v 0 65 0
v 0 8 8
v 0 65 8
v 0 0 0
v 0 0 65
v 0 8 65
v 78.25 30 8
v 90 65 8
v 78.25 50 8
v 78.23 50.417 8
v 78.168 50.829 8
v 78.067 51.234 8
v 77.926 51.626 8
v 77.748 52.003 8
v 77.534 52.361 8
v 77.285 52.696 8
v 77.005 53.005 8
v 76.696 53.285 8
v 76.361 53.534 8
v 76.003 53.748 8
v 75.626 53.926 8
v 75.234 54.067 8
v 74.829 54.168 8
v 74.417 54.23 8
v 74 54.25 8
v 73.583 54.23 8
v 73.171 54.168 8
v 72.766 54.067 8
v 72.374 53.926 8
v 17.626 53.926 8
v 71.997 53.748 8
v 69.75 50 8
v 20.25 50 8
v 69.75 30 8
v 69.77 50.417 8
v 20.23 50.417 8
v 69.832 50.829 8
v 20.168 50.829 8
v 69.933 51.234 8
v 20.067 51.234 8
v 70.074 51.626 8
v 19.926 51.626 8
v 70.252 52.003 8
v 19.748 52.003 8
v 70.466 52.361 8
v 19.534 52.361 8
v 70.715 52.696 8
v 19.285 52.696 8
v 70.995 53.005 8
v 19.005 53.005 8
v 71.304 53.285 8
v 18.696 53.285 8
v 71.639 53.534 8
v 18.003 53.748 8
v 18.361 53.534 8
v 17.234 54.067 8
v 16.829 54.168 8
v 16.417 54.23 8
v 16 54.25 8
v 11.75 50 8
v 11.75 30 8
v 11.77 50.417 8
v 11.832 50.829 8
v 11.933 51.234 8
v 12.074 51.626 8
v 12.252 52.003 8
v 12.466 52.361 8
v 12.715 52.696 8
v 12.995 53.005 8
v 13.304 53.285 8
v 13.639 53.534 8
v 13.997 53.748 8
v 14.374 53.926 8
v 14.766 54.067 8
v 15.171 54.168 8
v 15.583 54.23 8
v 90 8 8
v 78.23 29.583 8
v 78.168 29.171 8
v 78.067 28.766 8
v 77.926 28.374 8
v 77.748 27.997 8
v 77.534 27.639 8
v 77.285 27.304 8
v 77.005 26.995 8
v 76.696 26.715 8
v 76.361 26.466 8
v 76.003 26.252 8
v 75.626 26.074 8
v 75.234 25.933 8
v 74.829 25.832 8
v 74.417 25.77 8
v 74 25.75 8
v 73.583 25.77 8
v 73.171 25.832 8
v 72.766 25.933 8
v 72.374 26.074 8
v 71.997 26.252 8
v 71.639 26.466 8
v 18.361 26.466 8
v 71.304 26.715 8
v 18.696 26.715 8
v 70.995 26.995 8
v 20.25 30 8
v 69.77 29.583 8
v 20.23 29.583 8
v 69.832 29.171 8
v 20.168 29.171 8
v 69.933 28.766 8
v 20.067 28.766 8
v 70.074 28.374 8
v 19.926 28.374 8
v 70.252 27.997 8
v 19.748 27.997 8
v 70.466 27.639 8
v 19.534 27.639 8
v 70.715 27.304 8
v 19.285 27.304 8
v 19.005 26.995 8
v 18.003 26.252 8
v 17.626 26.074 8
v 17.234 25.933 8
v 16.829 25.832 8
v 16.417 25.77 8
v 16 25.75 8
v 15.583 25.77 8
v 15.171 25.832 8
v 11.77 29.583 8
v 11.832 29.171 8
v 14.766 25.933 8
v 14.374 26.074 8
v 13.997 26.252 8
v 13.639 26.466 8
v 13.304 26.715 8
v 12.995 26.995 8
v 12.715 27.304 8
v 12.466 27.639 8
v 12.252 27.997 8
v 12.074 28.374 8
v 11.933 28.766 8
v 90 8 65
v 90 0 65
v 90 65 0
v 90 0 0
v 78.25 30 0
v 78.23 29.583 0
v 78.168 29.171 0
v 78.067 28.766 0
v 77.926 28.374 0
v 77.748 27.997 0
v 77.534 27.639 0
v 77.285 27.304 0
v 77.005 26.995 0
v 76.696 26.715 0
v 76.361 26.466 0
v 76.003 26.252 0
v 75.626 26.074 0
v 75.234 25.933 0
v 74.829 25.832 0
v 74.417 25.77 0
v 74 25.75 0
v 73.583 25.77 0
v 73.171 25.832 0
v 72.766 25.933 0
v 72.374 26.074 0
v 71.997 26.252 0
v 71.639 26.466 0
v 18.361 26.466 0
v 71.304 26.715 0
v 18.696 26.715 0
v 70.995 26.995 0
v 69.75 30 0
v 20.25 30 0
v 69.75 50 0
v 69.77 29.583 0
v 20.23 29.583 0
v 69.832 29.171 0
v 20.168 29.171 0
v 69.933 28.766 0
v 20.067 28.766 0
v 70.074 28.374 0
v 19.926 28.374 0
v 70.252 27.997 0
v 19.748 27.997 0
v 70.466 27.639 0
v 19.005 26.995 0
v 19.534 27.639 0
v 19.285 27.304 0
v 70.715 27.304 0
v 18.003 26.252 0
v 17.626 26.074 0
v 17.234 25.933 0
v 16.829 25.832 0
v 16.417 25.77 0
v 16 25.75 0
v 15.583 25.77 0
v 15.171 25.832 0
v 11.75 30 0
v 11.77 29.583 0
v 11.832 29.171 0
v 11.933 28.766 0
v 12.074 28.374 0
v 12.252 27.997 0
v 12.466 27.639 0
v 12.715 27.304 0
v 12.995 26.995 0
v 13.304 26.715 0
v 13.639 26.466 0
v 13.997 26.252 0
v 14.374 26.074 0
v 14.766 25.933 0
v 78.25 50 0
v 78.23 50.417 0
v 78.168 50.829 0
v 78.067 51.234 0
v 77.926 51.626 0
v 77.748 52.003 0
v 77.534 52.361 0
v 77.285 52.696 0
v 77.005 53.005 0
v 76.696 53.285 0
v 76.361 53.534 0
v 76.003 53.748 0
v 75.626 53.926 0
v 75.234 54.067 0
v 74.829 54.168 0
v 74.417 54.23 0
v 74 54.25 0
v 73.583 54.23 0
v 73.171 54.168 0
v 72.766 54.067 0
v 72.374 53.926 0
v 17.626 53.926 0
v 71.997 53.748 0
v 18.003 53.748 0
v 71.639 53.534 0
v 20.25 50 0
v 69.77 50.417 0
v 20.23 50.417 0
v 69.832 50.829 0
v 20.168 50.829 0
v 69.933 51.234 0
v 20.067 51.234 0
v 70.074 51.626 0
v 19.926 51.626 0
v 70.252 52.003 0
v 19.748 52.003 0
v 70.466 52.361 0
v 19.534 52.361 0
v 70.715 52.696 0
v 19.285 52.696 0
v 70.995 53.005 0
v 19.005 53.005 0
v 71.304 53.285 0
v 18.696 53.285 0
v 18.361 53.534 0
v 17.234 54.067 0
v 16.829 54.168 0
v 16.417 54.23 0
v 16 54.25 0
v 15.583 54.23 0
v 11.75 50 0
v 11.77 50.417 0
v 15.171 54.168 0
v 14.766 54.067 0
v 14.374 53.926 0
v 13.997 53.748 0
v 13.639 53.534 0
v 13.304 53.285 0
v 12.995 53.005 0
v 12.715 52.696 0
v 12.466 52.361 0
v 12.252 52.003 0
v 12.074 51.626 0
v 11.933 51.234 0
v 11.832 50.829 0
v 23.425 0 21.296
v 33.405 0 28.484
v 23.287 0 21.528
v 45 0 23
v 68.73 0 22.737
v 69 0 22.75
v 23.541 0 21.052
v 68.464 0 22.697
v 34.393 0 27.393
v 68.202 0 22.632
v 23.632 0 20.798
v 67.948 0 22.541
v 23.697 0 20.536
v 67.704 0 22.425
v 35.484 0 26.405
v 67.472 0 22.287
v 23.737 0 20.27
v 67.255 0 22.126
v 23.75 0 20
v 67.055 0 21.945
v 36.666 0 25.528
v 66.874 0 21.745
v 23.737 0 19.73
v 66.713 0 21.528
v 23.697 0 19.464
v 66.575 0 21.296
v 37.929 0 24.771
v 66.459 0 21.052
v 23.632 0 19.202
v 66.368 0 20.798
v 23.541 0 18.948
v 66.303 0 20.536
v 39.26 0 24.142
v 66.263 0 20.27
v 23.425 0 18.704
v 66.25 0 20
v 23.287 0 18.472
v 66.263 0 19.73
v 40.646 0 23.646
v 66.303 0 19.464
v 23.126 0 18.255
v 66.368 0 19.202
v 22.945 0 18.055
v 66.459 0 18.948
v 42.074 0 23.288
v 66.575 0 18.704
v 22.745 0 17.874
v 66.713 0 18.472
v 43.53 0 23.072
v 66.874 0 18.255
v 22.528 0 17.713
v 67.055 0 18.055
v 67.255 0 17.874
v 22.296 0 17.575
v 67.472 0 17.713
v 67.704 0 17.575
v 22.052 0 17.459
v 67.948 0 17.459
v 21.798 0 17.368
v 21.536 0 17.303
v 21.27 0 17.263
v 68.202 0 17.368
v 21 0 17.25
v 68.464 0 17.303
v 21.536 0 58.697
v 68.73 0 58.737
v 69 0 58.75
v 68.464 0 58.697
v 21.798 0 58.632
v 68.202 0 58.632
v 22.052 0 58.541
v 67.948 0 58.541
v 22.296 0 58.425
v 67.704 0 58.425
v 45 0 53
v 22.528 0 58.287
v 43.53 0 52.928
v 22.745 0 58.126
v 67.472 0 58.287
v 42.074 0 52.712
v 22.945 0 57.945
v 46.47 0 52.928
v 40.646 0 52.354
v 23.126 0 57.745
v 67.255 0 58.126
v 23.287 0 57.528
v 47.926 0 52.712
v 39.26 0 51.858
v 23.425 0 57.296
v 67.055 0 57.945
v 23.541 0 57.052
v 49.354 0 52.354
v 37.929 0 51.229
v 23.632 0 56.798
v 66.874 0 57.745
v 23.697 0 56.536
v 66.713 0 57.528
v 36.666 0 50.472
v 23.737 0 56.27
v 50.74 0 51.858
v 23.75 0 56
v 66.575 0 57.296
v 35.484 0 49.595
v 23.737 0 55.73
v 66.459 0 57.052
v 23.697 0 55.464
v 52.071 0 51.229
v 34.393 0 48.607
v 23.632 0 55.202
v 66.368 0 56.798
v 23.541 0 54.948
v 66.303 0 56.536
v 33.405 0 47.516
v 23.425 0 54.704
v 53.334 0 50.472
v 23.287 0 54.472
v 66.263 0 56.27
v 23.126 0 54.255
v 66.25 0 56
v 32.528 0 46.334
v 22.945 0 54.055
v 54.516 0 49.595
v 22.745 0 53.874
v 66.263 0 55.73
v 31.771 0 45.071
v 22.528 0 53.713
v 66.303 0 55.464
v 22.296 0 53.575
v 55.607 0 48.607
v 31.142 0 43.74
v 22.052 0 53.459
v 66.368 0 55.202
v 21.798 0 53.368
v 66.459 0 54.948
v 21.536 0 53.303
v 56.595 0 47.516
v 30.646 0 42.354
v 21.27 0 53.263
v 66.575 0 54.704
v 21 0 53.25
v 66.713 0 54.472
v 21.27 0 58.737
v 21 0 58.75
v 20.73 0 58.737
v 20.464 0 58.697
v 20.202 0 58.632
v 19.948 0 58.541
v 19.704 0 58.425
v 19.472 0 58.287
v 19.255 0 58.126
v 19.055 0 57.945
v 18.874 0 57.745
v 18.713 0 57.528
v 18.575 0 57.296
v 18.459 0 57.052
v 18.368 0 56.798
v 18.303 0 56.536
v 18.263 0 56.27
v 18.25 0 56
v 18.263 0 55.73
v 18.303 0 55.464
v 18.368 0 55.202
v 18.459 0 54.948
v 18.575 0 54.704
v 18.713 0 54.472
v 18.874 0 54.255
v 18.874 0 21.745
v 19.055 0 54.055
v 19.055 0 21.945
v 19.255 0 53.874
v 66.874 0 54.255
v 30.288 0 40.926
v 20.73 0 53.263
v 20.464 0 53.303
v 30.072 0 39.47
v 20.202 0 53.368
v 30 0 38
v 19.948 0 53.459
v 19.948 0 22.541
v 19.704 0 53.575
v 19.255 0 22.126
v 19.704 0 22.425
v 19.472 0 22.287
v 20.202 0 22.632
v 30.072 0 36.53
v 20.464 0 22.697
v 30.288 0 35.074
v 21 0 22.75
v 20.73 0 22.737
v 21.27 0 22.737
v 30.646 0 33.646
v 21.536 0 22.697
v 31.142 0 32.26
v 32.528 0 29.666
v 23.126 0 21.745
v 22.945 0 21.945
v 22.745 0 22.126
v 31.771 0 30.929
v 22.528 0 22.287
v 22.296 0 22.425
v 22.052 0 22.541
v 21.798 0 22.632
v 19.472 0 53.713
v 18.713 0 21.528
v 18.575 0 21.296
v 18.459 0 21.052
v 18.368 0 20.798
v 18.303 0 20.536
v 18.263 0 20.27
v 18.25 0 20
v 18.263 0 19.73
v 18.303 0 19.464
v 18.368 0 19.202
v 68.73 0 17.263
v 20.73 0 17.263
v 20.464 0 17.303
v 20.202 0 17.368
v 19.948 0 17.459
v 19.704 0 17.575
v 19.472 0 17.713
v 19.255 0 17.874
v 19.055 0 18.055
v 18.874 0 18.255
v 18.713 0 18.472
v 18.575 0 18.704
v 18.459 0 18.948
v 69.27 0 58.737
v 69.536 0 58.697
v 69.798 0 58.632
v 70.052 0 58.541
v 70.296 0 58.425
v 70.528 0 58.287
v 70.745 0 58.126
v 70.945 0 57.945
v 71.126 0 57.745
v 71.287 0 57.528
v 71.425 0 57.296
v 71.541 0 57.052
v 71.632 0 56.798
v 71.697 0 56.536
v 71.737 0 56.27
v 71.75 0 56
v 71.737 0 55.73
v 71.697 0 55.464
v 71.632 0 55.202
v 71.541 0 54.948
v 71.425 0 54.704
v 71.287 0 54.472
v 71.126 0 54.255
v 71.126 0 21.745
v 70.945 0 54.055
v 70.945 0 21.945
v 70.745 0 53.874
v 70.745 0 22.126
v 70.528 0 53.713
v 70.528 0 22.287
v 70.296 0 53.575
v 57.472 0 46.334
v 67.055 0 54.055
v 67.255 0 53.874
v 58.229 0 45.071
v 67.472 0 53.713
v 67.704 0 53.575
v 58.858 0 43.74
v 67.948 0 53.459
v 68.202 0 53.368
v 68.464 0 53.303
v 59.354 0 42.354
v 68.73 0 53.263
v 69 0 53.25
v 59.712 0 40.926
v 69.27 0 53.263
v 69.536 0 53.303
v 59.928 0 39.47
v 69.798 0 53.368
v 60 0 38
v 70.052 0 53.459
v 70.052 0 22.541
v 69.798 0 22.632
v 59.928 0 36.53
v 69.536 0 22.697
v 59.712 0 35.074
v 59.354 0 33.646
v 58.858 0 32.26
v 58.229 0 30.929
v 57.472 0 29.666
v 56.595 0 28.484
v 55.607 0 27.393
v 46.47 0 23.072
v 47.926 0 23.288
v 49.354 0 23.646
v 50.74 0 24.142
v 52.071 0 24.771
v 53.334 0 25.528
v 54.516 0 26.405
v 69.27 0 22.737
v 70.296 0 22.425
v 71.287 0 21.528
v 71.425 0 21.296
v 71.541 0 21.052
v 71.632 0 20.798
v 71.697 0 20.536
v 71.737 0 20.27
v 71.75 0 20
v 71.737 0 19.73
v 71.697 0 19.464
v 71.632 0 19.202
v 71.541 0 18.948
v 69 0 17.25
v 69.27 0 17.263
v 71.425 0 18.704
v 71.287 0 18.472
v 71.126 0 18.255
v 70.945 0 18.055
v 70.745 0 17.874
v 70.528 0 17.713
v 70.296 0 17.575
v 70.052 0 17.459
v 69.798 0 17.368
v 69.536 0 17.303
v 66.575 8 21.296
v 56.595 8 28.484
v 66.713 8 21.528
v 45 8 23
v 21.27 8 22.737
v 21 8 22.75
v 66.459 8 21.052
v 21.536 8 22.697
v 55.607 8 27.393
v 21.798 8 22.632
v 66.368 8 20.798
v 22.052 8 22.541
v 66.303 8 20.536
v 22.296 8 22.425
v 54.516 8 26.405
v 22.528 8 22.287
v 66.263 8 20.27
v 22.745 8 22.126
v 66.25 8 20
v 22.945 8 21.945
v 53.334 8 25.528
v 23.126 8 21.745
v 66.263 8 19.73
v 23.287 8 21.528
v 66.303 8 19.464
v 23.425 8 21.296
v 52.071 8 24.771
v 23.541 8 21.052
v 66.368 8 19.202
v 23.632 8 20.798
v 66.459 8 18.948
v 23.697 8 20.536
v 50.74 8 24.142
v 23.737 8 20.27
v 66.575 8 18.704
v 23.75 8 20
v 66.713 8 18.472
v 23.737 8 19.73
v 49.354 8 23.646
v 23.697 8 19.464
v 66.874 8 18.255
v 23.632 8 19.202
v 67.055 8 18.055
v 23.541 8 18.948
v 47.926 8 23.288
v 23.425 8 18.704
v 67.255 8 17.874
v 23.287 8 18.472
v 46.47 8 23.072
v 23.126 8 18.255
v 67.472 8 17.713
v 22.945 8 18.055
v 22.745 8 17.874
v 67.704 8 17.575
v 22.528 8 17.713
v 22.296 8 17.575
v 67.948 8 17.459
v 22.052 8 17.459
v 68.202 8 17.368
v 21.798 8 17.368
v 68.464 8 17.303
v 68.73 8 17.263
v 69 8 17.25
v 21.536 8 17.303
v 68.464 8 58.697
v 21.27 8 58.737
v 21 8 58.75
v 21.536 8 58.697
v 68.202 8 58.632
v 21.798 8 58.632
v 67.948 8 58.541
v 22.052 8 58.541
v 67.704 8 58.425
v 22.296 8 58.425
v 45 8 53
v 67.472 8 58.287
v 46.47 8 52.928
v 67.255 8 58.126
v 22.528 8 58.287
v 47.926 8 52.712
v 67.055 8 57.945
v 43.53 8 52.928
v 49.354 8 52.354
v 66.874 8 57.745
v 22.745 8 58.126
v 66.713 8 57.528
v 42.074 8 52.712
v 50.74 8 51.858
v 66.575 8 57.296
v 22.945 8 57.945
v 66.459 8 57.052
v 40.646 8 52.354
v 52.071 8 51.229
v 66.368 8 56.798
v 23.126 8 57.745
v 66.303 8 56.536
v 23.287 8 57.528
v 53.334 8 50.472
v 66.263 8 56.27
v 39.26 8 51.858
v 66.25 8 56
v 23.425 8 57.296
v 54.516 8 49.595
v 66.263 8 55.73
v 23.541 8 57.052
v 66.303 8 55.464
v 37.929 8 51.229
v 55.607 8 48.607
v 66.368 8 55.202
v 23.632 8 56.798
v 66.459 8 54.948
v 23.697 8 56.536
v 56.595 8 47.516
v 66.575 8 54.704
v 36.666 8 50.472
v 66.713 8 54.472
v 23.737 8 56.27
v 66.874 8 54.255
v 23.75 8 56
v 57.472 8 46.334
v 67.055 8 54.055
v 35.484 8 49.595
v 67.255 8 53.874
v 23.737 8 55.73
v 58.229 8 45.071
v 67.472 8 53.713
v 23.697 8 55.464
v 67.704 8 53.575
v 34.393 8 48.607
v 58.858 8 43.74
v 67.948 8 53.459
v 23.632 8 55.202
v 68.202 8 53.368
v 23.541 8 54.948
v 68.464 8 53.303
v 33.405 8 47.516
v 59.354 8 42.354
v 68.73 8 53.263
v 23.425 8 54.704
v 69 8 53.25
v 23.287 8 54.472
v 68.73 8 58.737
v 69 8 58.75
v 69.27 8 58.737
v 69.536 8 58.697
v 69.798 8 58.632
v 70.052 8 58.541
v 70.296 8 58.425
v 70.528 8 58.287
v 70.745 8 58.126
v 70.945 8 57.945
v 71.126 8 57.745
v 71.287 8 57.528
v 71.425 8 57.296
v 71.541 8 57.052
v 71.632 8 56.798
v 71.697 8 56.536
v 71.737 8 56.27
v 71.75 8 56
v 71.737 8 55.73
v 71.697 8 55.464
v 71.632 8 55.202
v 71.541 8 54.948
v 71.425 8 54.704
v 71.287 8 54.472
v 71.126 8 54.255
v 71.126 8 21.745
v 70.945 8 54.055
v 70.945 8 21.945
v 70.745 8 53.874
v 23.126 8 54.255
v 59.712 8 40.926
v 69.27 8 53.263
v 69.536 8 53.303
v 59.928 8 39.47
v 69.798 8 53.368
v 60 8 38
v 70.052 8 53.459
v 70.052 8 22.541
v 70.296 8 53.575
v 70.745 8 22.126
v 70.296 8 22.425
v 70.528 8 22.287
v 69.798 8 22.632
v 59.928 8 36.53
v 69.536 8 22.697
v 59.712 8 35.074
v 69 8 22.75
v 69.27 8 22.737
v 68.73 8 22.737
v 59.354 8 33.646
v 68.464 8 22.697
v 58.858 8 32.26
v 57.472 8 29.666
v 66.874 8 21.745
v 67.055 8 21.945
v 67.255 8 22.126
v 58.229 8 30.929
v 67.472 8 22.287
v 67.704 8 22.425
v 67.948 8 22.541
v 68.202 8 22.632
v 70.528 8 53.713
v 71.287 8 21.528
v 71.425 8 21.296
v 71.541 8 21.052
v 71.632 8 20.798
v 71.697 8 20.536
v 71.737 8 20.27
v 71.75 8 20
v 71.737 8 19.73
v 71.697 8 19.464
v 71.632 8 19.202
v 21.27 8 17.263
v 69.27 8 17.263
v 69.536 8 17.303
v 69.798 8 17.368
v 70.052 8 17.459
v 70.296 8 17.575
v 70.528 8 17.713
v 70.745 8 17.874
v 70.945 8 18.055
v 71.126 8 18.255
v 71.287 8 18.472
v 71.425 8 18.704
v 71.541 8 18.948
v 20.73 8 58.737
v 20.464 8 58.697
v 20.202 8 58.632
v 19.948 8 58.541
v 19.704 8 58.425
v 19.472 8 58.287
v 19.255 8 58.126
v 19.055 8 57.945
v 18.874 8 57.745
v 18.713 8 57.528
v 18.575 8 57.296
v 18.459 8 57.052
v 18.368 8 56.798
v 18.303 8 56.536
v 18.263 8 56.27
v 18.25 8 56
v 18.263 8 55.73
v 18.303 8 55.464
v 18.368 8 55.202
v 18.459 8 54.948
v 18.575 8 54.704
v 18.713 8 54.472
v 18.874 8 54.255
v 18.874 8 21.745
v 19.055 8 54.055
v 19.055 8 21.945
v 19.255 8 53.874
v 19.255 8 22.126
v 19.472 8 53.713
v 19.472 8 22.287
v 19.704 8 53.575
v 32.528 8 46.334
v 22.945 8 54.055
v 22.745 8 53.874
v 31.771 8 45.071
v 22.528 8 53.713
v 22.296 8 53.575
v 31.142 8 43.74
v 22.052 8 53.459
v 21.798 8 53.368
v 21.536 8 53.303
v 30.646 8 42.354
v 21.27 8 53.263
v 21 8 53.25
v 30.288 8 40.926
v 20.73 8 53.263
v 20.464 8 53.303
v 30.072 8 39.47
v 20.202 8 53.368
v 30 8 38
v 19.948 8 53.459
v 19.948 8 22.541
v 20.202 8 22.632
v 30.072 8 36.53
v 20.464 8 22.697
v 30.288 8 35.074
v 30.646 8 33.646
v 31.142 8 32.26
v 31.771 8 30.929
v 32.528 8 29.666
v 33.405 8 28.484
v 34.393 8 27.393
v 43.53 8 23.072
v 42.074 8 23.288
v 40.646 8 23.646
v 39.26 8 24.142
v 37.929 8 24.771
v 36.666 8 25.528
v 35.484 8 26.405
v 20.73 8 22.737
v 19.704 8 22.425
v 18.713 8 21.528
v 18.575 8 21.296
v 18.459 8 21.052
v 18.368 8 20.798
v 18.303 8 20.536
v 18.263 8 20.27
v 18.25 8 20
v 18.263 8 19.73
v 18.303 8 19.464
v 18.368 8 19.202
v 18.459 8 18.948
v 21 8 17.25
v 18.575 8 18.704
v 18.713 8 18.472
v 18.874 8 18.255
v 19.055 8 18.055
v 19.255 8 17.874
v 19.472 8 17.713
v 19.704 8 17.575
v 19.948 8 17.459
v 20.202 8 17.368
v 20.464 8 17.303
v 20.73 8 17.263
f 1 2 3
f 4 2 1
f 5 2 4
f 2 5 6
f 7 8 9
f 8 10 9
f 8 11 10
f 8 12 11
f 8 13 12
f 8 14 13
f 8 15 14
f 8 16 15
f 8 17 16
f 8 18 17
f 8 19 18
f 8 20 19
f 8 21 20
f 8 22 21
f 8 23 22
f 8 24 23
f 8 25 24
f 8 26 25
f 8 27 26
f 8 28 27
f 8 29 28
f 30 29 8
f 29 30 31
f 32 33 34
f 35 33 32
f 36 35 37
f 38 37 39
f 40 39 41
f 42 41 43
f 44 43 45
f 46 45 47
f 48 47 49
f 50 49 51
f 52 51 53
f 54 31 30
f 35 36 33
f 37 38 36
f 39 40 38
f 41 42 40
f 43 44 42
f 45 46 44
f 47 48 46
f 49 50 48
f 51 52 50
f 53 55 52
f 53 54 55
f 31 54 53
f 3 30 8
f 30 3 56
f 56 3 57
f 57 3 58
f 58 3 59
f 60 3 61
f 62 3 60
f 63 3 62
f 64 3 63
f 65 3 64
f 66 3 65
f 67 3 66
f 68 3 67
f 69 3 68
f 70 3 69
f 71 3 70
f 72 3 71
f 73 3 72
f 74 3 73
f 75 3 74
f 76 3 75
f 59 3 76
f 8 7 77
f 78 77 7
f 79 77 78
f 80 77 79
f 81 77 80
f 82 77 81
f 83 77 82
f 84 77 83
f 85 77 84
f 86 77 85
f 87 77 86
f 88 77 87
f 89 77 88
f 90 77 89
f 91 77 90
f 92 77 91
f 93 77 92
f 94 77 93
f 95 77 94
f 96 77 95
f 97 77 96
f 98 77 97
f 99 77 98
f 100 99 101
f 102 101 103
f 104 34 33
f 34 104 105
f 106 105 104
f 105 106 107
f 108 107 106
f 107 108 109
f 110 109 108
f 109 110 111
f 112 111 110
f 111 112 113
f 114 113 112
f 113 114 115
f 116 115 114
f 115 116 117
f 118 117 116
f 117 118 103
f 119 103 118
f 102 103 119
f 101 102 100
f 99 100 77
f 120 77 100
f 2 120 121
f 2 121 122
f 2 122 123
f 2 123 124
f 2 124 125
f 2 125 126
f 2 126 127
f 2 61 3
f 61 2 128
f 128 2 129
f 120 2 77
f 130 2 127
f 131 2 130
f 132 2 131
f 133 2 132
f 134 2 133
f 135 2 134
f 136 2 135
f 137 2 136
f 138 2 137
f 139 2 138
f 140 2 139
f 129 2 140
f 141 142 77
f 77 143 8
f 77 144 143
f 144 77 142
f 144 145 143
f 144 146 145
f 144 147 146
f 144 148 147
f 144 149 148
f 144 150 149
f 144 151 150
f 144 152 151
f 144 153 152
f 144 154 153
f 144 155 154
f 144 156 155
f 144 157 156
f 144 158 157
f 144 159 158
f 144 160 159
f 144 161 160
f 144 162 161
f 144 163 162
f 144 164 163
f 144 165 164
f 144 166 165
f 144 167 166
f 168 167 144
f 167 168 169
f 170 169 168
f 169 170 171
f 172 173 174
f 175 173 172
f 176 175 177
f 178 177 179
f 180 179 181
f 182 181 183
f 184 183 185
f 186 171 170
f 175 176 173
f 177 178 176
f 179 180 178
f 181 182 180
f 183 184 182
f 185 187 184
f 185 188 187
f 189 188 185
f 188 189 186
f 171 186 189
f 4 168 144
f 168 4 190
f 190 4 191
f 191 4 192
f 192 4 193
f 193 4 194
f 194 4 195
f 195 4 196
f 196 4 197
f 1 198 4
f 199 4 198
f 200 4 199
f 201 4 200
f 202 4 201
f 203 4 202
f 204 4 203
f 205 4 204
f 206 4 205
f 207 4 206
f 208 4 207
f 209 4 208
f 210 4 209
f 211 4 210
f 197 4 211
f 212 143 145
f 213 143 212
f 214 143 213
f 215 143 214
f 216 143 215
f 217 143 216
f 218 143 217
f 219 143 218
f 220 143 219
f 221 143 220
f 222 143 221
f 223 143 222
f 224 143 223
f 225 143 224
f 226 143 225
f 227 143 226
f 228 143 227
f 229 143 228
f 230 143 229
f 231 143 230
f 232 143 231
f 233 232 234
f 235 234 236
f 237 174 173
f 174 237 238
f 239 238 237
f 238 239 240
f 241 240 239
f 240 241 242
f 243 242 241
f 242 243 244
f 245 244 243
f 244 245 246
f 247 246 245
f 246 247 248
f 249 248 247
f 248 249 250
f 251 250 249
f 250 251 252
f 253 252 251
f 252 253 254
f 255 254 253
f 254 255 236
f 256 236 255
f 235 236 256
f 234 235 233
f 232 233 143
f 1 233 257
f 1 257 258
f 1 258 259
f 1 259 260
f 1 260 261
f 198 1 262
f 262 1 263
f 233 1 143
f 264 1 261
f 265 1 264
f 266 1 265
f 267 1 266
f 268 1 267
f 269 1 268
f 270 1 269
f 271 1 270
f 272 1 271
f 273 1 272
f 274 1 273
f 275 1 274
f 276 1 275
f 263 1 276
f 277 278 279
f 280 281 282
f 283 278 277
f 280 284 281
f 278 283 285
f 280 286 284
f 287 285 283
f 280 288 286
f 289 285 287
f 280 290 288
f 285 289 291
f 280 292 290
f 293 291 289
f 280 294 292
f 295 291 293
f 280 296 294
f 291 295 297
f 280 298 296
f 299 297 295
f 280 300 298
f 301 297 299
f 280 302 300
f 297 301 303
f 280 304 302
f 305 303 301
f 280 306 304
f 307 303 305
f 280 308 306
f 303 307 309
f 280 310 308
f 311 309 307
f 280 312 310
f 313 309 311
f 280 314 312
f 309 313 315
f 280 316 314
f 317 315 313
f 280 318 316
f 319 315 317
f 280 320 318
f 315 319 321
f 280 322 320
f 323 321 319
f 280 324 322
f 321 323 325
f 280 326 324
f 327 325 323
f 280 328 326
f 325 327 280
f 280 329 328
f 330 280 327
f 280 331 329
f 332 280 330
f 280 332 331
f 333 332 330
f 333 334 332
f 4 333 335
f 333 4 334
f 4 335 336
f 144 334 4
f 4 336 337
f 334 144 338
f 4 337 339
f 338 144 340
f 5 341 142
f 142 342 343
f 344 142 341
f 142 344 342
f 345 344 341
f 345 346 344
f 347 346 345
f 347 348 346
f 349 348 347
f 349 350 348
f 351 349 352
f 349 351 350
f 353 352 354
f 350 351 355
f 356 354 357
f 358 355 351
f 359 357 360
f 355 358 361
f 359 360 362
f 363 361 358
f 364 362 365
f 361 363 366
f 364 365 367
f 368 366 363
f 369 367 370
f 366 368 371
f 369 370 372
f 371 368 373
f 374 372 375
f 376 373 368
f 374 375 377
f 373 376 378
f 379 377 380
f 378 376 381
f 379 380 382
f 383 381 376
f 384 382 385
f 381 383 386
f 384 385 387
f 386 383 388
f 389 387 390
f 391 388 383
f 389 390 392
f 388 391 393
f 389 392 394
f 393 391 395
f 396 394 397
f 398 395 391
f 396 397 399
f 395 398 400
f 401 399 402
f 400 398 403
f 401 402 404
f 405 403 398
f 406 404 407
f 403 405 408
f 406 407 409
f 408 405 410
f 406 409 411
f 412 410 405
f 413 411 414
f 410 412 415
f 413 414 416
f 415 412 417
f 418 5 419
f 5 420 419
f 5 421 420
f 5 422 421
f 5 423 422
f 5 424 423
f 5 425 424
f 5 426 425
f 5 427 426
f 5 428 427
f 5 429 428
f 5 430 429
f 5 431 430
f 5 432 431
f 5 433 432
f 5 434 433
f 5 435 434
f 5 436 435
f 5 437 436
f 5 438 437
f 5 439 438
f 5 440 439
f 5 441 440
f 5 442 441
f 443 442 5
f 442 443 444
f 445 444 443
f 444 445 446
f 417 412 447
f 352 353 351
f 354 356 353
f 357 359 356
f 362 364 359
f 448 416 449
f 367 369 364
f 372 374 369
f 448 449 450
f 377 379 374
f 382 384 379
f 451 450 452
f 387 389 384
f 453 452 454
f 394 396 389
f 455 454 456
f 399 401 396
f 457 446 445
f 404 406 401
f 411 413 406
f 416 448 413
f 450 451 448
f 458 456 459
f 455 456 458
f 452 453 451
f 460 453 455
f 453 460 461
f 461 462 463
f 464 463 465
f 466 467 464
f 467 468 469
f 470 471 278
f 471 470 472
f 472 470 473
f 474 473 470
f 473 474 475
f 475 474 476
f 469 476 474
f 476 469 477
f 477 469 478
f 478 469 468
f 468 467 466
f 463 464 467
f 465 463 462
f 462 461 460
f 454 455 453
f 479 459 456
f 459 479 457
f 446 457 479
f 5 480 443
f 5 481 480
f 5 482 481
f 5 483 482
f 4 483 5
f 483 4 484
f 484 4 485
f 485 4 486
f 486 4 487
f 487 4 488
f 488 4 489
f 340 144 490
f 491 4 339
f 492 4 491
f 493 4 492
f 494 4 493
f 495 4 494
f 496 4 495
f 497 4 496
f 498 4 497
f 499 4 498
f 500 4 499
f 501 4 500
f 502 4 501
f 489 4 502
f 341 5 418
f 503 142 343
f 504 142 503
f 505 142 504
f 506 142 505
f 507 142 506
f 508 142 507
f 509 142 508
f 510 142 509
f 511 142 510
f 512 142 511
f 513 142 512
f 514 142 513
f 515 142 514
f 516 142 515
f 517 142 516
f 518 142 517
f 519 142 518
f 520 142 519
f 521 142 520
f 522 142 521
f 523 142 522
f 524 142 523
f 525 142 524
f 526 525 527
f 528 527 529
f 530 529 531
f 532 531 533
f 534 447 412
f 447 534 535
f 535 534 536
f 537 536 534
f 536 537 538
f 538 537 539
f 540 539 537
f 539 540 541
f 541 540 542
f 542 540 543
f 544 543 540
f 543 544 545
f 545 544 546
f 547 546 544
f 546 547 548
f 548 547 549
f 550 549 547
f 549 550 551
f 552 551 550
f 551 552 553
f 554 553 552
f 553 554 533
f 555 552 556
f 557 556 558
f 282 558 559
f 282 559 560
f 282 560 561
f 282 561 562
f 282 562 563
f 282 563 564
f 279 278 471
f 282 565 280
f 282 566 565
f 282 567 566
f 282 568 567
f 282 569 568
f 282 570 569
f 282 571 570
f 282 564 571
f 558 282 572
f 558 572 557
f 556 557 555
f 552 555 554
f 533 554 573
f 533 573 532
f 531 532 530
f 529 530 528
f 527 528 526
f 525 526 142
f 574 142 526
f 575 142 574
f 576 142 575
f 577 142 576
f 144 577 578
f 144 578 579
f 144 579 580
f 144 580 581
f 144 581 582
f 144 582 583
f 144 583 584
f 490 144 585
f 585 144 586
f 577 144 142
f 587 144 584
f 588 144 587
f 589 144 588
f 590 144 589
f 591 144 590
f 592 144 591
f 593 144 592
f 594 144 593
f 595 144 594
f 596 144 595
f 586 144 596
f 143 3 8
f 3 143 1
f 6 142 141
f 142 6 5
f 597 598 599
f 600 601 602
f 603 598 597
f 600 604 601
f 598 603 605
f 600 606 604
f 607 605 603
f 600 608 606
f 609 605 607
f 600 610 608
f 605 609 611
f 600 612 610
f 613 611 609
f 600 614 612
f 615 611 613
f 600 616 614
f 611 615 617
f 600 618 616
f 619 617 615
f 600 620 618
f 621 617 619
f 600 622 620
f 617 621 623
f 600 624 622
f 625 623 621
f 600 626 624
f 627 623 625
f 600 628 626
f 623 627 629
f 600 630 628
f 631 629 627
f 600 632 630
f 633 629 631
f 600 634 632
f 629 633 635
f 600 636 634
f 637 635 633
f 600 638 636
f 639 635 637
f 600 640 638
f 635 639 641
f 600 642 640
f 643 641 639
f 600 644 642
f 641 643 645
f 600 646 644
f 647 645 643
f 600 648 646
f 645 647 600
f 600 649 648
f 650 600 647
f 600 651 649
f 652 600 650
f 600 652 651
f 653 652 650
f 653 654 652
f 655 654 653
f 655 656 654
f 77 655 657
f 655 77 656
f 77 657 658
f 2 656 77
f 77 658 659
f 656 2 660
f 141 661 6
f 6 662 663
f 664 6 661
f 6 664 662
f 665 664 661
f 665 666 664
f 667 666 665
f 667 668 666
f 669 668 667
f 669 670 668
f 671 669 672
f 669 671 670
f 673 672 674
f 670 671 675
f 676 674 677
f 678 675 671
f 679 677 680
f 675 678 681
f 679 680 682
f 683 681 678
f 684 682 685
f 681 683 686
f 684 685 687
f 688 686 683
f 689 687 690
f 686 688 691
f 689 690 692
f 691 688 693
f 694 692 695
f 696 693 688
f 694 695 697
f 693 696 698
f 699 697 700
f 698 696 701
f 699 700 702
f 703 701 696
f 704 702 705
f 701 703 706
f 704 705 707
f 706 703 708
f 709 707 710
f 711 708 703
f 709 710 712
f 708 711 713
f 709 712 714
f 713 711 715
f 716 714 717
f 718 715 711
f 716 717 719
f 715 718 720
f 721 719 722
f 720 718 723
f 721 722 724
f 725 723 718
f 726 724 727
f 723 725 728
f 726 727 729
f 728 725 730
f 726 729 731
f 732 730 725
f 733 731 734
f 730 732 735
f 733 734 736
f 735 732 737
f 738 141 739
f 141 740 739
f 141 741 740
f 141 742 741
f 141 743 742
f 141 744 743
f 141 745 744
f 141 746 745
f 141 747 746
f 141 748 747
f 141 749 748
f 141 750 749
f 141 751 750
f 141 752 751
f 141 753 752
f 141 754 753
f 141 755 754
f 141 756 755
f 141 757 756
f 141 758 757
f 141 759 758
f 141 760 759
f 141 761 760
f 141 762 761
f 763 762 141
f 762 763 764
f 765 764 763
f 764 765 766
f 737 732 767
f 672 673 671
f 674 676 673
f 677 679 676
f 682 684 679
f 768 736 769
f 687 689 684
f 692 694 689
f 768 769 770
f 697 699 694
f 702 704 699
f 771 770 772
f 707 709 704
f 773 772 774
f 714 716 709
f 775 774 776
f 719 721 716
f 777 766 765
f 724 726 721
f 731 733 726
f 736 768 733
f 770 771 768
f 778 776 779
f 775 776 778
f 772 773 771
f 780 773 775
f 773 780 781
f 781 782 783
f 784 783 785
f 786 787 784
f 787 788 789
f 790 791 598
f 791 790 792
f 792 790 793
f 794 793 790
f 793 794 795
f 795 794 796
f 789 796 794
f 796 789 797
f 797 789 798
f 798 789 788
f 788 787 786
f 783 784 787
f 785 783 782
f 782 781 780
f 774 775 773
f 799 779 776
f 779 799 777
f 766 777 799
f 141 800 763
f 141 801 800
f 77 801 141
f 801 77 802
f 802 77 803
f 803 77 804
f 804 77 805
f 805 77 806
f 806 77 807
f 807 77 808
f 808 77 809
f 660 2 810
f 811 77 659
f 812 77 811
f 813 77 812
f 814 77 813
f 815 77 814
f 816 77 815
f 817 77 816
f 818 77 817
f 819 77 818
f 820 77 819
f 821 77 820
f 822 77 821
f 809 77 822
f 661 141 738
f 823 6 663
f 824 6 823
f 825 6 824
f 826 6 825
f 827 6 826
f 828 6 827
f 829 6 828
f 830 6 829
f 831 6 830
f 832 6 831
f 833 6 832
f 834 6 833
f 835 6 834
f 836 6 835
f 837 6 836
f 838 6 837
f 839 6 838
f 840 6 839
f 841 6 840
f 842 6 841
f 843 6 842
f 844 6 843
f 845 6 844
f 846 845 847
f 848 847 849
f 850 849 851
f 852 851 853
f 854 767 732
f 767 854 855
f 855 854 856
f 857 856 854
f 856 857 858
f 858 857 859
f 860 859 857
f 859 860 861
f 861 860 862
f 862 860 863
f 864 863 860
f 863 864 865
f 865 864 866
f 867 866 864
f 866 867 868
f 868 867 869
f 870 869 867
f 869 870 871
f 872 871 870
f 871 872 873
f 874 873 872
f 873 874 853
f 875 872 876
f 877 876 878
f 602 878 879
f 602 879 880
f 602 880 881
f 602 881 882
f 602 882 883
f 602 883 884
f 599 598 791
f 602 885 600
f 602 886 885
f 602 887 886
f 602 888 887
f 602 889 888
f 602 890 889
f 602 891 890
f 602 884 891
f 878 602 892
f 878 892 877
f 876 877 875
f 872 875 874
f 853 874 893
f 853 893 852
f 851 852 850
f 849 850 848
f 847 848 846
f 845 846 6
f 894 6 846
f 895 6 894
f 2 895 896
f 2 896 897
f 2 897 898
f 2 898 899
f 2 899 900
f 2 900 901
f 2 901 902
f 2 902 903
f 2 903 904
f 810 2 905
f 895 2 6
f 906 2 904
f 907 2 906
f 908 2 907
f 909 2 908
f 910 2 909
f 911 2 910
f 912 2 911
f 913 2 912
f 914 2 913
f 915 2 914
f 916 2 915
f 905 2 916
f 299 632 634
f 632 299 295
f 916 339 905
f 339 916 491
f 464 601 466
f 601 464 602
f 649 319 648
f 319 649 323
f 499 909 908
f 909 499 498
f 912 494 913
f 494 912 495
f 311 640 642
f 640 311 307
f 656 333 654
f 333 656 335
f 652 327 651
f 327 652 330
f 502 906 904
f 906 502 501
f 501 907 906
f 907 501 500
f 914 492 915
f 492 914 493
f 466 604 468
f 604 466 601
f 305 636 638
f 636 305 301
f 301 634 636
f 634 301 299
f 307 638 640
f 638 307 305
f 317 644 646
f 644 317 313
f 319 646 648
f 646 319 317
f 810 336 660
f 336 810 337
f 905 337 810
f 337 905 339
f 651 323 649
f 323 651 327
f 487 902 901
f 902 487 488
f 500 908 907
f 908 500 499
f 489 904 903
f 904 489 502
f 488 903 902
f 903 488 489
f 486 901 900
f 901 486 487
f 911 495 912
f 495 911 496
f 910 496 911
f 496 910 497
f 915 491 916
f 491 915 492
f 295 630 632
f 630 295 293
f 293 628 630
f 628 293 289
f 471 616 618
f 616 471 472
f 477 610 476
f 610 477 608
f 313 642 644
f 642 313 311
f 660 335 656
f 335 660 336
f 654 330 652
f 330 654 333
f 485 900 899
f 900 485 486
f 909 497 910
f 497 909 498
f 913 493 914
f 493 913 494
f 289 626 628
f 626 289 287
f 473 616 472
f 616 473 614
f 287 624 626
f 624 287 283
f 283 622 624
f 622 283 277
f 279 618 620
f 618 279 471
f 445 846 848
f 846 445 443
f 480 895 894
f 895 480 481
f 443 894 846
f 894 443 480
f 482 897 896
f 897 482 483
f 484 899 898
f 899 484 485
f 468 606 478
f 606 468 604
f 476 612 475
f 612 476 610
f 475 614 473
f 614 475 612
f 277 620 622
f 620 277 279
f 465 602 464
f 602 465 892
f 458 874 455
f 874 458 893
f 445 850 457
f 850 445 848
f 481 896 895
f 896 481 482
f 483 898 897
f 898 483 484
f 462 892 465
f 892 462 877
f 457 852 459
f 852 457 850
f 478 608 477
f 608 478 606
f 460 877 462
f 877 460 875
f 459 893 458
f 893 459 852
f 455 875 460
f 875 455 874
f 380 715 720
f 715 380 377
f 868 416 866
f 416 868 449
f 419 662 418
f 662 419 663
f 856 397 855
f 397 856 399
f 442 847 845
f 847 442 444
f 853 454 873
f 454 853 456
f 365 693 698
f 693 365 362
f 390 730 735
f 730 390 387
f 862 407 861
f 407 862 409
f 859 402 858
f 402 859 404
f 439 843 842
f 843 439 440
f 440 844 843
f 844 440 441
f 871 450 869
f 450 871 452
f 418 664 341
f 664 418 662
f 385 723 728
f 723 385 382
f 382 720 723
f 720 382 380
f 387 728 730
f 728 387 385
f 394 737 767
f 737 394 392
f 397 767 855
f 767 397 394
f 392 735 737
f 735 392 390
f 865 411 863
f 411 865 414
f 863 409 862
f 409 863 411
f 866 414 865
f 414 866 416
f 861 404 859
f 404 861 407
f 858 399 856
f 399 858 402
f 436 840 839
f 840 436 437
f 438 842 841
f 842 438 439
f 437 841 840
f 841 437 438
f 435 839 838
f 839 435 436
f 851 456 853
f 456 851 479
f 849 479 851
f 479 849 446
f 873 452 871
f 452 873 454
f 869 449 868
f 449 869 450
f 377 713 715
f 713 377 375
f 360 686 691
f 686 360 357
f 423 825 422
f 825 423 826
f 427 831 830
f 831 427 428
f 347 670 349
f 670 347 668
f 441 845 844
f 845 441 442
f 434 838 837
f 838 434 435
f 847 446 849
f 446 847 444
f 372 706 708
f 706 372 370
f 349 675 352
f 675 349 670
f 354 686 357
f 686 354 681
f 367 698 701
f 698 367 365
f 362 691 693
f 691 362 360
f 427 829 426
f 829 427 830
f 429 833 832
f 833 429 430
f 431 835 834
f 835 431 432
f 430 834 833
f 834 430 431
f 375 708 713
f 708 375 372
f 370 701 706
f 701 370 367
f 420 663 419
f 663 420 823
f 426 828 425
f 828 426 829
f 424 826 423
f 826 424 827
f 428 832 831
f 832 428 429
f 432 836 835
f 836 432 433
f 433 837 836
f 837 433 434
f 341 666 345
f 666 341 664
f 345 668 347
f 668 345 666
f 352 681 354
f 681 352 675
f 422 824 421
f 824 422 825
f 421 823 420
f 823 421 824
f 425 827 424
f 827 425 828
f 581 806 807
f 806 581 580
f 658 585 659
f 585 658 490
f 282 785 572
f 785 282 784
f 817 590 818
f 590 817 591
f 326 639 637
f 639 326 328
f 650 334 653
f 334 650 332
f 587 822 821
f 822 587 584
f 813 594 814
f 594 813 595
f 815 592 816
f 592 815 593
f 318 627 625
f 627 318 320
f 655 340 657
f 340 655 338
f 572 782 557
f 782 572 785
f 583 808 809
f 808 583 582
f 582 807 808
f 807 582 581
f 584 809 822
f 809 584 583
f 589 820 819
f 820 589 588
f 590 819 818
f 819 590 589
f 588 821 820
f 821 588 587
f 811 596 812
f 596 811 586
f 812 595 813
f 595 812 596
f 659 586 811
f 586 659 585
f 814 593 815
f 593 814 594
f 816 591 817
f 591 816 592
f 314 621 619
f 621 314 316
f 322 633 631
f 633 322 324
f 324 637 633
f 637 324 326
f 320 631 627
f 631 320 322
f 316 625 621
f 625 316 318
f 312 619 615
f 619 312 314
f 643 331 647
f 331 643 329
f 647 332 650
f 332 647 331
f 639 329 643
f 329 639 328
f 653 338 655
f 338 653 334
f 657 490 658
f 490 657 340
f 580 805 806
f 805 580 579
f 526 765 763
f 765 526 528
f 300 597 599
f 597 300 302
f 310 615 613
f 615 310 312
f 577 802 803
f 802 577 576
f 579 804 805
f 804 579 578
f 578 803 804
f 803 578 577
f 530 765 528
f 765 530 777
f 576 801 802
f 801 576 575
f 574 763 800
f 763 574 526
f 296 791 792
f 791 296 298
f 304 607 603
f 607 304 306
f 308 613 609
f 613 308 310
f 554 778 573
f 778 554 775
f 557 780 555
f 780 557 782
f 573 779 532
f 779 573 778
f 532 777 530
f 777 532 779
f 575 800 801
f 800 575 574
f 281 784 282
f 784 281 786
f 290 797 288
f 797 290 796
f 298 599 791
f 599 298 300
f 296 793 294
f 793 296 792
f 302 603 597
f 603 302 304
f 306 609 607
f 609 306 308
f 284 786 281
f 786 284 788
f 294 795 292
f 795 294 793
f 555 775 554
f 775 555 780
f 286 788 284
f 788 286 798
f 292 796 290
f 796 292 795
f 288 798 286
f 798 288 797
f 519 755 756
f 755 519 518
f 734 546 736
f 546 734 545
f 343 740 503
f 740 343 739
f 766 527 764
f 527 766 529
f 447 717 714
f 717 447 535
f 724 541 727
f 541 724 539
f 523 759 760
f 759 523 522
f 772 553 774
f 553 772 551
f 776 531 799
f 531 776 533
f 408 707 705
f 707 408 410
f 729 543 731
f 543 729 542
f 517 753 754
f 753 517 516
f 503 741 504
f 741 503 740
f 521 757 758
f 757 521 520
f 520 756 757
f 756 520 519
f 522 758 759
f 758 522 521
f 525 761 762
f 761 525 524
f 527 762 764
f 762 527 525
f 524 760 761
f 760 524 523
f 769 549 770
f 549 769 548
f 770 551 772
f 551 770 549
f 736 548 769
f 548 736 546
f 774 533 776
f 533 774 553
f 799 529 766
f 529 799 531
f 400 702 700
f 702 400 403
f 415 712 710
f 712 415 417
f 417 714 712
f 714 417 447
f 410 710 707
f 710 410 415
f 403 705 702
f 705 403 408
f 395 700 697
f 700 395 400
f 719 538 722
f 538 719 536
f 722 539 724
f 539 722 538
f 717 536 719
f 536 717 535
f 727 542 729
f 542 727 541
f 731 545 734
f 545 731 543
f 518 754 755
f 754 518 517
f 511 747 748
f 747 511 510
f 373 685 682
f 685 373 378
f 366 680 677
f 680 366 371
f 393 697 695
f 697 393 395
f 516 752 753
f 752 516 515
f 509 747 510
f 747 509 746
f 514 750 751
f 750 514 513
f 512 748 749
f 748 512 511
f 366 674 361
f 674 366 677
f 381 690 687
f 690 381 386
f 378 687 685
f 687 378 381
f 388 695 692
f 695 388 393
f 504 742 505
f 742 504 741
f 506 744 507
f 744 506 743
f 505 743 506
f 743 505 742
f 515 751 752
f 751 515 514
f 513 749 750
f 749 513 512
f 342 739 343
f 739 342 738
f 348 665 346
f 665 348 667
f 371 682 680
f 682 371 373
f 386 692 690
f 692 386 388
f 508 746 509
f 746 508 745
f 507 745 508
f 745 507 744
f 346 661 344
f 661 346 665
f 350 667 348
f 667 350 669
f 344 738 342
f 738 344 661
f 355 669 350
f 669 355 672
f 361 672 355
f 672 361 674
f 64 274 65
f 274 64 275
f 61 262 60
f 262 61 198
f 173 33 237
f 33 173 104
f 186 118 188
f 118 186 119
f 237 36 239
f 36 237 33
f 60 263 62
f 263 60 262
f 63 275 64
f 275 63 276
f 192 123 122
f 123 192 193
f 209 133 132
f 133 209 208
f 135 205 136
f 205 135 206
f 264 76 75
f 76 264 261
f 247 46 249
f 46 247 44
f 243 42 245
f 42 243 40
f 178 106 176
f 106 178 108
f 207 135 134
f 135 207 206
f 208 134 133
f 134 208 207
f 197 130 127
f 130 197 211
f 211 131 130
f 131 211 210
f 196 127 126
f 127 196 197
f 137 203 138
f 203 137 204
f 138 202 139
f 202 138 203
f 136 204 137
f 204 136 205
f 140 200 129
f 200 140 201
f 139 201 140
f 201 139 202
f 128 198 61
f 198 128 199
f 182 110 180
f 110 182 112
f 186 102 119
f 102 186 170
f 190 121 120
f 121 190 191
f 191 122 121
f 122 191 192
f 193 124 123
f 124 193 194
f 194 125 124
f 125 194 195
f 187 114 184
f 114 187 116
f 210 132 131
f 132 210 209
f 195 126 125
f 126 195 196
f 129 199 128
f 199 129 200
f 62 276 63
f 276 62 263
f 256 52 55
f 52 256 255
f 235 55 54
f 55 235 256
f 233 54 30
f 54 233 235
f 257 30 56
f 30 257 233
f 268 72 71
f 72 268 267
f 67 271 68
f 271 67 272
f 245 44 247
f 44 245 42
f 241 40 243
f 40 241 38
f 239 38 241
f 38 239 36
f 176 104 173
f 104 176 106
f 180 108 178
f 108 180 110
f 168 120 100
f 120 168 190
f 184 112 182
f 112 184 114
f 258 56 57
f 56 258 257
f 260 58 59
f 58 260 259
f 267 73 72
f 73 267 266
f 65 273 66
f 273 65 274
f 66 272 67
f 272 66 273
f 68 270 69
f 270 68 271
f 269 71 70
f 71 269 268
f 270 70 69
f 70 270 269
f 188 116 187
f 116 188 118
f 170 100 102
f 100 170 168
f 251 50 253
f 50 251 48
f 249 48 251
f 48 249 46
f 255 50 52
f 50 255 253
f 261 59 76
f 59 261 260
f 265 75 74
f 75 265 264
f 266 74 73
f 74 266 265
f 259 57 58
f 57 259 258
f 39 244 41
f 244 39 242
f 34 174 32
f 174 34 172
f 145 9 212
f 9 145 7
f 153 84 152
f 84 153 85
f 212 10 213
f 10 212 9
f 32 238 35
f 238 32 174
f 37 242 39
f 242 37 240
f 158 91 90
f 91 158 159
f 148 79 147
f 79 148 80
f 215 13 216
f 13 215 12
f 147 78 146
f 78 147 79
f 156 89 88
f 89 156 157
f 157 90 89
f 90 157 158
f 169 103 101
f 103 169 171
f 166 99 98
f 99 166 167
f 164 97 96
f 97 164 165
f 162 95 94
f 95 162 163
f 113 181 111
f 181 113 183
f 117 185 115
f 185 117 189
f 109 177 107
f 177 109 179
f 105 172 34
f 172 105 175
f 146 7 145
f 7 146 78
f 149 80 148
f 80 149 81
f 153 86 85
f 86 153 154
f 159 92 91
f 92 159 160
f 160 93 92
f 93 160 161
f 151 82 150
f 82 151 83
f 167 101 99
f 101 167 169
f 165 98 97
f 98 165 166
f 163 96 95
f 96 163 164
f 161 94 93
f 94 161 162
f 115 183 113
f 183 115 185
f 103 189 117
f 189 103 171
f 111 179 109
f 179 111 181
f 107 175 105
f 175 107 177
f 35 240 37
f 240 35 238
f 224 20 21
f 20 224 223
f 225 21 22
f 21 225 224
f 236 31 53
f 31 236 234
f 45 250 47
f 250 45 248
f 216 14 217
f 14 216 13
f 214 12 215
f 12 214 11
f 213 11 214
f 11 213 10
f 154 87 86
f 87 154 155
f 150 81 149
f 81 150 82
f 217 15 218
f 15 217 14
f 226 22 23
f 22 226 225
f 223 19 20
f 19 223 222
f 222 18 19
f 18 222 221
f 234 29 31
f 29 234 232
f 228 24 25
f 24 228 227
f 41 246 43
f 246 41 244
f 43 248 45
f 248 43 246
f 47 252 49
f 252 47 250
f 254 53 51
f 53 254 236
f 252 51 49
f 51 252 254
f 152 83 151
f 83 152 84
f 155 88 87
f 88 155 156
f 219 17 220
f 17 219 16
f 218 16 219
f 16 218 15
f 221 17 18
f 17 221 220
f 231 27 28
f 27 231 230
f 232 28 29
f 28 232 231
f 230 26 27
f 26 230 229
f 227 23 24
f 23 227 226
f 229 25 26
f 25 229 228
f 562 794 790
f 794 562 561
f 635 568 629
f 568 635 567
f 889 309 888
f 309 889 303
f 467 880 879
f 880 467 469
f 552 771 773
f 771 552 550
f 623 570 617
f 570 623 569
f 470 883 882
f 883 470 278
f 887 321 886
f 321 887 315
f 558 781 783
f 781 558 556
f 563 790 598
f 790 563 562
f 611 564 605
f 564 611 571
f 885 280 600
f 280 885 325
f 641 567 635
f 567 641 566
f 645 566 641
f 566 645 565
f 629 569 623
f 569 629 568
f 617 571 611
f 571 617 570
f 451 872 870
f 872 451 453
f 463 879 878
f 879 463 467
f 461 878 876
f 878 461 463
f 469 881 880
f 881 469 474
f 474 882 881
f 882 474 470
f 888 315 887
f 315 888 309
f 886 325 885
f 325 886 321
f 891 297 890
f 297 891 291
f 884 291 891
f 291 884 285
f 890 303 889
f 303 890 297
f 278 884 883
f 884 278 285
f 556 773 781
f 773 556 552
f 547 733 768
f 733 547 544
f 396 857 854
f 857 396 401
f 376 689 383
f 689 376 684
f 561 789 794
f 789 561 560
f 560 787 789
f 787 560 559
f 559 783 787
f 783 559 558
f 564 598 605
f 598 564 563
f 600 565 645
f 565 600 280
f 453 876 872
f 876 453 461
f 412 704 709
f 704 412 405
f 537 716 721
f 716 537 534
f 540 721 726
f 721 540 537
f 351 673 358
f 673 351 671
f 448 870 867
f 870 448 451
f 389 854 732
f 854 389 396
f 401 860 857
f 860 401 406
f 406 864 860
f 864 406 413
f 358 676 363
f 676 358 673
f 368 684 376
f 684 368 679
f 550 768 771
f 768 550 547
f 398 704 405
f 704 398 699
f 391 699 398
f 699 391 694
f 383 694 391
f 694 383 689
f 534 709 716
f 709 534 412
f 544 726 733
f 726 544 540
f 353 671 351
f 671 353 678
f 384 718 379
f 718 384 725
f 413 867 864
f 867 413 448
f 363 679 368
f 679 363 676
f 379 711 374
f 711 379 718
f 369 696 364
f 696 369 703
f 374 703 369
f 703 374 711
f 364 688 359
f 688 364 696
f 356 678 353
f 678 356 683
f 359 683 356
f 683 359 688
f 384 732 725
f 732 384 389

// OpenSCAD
// Original MechIntel educational model. CC0-1.0. Units: mm.
// Not a standardized or load-rated component.
$fn=96;
width=90; depth=65; height=65; wall=8; opening=30; hole_pitch=48; slot=8.5; travel=20;
$fn=64;
difference(){
 union(){cube([width,depth,wall]);cube([width,wall,height]);}
 translate([width/2,-1,38]) rotate([-90,0,0]) cylinder(d=opening,h=wall+2);
 for(x=[width/2-hole_pitch/2,width/2+hole_pitch/2]) for(z=[20,56]) translate([x,-1,z]) rotate([-90,0,0]) cylinder(d=5.5,h=wall+2);
 for(x=[16,width-16]) hull(){translate([x,30,-1]) cylinder(d=slot,h=wall+2);translate([x,30+travel,-1]) cylinder(d=slot,h=wall+2);}
}
